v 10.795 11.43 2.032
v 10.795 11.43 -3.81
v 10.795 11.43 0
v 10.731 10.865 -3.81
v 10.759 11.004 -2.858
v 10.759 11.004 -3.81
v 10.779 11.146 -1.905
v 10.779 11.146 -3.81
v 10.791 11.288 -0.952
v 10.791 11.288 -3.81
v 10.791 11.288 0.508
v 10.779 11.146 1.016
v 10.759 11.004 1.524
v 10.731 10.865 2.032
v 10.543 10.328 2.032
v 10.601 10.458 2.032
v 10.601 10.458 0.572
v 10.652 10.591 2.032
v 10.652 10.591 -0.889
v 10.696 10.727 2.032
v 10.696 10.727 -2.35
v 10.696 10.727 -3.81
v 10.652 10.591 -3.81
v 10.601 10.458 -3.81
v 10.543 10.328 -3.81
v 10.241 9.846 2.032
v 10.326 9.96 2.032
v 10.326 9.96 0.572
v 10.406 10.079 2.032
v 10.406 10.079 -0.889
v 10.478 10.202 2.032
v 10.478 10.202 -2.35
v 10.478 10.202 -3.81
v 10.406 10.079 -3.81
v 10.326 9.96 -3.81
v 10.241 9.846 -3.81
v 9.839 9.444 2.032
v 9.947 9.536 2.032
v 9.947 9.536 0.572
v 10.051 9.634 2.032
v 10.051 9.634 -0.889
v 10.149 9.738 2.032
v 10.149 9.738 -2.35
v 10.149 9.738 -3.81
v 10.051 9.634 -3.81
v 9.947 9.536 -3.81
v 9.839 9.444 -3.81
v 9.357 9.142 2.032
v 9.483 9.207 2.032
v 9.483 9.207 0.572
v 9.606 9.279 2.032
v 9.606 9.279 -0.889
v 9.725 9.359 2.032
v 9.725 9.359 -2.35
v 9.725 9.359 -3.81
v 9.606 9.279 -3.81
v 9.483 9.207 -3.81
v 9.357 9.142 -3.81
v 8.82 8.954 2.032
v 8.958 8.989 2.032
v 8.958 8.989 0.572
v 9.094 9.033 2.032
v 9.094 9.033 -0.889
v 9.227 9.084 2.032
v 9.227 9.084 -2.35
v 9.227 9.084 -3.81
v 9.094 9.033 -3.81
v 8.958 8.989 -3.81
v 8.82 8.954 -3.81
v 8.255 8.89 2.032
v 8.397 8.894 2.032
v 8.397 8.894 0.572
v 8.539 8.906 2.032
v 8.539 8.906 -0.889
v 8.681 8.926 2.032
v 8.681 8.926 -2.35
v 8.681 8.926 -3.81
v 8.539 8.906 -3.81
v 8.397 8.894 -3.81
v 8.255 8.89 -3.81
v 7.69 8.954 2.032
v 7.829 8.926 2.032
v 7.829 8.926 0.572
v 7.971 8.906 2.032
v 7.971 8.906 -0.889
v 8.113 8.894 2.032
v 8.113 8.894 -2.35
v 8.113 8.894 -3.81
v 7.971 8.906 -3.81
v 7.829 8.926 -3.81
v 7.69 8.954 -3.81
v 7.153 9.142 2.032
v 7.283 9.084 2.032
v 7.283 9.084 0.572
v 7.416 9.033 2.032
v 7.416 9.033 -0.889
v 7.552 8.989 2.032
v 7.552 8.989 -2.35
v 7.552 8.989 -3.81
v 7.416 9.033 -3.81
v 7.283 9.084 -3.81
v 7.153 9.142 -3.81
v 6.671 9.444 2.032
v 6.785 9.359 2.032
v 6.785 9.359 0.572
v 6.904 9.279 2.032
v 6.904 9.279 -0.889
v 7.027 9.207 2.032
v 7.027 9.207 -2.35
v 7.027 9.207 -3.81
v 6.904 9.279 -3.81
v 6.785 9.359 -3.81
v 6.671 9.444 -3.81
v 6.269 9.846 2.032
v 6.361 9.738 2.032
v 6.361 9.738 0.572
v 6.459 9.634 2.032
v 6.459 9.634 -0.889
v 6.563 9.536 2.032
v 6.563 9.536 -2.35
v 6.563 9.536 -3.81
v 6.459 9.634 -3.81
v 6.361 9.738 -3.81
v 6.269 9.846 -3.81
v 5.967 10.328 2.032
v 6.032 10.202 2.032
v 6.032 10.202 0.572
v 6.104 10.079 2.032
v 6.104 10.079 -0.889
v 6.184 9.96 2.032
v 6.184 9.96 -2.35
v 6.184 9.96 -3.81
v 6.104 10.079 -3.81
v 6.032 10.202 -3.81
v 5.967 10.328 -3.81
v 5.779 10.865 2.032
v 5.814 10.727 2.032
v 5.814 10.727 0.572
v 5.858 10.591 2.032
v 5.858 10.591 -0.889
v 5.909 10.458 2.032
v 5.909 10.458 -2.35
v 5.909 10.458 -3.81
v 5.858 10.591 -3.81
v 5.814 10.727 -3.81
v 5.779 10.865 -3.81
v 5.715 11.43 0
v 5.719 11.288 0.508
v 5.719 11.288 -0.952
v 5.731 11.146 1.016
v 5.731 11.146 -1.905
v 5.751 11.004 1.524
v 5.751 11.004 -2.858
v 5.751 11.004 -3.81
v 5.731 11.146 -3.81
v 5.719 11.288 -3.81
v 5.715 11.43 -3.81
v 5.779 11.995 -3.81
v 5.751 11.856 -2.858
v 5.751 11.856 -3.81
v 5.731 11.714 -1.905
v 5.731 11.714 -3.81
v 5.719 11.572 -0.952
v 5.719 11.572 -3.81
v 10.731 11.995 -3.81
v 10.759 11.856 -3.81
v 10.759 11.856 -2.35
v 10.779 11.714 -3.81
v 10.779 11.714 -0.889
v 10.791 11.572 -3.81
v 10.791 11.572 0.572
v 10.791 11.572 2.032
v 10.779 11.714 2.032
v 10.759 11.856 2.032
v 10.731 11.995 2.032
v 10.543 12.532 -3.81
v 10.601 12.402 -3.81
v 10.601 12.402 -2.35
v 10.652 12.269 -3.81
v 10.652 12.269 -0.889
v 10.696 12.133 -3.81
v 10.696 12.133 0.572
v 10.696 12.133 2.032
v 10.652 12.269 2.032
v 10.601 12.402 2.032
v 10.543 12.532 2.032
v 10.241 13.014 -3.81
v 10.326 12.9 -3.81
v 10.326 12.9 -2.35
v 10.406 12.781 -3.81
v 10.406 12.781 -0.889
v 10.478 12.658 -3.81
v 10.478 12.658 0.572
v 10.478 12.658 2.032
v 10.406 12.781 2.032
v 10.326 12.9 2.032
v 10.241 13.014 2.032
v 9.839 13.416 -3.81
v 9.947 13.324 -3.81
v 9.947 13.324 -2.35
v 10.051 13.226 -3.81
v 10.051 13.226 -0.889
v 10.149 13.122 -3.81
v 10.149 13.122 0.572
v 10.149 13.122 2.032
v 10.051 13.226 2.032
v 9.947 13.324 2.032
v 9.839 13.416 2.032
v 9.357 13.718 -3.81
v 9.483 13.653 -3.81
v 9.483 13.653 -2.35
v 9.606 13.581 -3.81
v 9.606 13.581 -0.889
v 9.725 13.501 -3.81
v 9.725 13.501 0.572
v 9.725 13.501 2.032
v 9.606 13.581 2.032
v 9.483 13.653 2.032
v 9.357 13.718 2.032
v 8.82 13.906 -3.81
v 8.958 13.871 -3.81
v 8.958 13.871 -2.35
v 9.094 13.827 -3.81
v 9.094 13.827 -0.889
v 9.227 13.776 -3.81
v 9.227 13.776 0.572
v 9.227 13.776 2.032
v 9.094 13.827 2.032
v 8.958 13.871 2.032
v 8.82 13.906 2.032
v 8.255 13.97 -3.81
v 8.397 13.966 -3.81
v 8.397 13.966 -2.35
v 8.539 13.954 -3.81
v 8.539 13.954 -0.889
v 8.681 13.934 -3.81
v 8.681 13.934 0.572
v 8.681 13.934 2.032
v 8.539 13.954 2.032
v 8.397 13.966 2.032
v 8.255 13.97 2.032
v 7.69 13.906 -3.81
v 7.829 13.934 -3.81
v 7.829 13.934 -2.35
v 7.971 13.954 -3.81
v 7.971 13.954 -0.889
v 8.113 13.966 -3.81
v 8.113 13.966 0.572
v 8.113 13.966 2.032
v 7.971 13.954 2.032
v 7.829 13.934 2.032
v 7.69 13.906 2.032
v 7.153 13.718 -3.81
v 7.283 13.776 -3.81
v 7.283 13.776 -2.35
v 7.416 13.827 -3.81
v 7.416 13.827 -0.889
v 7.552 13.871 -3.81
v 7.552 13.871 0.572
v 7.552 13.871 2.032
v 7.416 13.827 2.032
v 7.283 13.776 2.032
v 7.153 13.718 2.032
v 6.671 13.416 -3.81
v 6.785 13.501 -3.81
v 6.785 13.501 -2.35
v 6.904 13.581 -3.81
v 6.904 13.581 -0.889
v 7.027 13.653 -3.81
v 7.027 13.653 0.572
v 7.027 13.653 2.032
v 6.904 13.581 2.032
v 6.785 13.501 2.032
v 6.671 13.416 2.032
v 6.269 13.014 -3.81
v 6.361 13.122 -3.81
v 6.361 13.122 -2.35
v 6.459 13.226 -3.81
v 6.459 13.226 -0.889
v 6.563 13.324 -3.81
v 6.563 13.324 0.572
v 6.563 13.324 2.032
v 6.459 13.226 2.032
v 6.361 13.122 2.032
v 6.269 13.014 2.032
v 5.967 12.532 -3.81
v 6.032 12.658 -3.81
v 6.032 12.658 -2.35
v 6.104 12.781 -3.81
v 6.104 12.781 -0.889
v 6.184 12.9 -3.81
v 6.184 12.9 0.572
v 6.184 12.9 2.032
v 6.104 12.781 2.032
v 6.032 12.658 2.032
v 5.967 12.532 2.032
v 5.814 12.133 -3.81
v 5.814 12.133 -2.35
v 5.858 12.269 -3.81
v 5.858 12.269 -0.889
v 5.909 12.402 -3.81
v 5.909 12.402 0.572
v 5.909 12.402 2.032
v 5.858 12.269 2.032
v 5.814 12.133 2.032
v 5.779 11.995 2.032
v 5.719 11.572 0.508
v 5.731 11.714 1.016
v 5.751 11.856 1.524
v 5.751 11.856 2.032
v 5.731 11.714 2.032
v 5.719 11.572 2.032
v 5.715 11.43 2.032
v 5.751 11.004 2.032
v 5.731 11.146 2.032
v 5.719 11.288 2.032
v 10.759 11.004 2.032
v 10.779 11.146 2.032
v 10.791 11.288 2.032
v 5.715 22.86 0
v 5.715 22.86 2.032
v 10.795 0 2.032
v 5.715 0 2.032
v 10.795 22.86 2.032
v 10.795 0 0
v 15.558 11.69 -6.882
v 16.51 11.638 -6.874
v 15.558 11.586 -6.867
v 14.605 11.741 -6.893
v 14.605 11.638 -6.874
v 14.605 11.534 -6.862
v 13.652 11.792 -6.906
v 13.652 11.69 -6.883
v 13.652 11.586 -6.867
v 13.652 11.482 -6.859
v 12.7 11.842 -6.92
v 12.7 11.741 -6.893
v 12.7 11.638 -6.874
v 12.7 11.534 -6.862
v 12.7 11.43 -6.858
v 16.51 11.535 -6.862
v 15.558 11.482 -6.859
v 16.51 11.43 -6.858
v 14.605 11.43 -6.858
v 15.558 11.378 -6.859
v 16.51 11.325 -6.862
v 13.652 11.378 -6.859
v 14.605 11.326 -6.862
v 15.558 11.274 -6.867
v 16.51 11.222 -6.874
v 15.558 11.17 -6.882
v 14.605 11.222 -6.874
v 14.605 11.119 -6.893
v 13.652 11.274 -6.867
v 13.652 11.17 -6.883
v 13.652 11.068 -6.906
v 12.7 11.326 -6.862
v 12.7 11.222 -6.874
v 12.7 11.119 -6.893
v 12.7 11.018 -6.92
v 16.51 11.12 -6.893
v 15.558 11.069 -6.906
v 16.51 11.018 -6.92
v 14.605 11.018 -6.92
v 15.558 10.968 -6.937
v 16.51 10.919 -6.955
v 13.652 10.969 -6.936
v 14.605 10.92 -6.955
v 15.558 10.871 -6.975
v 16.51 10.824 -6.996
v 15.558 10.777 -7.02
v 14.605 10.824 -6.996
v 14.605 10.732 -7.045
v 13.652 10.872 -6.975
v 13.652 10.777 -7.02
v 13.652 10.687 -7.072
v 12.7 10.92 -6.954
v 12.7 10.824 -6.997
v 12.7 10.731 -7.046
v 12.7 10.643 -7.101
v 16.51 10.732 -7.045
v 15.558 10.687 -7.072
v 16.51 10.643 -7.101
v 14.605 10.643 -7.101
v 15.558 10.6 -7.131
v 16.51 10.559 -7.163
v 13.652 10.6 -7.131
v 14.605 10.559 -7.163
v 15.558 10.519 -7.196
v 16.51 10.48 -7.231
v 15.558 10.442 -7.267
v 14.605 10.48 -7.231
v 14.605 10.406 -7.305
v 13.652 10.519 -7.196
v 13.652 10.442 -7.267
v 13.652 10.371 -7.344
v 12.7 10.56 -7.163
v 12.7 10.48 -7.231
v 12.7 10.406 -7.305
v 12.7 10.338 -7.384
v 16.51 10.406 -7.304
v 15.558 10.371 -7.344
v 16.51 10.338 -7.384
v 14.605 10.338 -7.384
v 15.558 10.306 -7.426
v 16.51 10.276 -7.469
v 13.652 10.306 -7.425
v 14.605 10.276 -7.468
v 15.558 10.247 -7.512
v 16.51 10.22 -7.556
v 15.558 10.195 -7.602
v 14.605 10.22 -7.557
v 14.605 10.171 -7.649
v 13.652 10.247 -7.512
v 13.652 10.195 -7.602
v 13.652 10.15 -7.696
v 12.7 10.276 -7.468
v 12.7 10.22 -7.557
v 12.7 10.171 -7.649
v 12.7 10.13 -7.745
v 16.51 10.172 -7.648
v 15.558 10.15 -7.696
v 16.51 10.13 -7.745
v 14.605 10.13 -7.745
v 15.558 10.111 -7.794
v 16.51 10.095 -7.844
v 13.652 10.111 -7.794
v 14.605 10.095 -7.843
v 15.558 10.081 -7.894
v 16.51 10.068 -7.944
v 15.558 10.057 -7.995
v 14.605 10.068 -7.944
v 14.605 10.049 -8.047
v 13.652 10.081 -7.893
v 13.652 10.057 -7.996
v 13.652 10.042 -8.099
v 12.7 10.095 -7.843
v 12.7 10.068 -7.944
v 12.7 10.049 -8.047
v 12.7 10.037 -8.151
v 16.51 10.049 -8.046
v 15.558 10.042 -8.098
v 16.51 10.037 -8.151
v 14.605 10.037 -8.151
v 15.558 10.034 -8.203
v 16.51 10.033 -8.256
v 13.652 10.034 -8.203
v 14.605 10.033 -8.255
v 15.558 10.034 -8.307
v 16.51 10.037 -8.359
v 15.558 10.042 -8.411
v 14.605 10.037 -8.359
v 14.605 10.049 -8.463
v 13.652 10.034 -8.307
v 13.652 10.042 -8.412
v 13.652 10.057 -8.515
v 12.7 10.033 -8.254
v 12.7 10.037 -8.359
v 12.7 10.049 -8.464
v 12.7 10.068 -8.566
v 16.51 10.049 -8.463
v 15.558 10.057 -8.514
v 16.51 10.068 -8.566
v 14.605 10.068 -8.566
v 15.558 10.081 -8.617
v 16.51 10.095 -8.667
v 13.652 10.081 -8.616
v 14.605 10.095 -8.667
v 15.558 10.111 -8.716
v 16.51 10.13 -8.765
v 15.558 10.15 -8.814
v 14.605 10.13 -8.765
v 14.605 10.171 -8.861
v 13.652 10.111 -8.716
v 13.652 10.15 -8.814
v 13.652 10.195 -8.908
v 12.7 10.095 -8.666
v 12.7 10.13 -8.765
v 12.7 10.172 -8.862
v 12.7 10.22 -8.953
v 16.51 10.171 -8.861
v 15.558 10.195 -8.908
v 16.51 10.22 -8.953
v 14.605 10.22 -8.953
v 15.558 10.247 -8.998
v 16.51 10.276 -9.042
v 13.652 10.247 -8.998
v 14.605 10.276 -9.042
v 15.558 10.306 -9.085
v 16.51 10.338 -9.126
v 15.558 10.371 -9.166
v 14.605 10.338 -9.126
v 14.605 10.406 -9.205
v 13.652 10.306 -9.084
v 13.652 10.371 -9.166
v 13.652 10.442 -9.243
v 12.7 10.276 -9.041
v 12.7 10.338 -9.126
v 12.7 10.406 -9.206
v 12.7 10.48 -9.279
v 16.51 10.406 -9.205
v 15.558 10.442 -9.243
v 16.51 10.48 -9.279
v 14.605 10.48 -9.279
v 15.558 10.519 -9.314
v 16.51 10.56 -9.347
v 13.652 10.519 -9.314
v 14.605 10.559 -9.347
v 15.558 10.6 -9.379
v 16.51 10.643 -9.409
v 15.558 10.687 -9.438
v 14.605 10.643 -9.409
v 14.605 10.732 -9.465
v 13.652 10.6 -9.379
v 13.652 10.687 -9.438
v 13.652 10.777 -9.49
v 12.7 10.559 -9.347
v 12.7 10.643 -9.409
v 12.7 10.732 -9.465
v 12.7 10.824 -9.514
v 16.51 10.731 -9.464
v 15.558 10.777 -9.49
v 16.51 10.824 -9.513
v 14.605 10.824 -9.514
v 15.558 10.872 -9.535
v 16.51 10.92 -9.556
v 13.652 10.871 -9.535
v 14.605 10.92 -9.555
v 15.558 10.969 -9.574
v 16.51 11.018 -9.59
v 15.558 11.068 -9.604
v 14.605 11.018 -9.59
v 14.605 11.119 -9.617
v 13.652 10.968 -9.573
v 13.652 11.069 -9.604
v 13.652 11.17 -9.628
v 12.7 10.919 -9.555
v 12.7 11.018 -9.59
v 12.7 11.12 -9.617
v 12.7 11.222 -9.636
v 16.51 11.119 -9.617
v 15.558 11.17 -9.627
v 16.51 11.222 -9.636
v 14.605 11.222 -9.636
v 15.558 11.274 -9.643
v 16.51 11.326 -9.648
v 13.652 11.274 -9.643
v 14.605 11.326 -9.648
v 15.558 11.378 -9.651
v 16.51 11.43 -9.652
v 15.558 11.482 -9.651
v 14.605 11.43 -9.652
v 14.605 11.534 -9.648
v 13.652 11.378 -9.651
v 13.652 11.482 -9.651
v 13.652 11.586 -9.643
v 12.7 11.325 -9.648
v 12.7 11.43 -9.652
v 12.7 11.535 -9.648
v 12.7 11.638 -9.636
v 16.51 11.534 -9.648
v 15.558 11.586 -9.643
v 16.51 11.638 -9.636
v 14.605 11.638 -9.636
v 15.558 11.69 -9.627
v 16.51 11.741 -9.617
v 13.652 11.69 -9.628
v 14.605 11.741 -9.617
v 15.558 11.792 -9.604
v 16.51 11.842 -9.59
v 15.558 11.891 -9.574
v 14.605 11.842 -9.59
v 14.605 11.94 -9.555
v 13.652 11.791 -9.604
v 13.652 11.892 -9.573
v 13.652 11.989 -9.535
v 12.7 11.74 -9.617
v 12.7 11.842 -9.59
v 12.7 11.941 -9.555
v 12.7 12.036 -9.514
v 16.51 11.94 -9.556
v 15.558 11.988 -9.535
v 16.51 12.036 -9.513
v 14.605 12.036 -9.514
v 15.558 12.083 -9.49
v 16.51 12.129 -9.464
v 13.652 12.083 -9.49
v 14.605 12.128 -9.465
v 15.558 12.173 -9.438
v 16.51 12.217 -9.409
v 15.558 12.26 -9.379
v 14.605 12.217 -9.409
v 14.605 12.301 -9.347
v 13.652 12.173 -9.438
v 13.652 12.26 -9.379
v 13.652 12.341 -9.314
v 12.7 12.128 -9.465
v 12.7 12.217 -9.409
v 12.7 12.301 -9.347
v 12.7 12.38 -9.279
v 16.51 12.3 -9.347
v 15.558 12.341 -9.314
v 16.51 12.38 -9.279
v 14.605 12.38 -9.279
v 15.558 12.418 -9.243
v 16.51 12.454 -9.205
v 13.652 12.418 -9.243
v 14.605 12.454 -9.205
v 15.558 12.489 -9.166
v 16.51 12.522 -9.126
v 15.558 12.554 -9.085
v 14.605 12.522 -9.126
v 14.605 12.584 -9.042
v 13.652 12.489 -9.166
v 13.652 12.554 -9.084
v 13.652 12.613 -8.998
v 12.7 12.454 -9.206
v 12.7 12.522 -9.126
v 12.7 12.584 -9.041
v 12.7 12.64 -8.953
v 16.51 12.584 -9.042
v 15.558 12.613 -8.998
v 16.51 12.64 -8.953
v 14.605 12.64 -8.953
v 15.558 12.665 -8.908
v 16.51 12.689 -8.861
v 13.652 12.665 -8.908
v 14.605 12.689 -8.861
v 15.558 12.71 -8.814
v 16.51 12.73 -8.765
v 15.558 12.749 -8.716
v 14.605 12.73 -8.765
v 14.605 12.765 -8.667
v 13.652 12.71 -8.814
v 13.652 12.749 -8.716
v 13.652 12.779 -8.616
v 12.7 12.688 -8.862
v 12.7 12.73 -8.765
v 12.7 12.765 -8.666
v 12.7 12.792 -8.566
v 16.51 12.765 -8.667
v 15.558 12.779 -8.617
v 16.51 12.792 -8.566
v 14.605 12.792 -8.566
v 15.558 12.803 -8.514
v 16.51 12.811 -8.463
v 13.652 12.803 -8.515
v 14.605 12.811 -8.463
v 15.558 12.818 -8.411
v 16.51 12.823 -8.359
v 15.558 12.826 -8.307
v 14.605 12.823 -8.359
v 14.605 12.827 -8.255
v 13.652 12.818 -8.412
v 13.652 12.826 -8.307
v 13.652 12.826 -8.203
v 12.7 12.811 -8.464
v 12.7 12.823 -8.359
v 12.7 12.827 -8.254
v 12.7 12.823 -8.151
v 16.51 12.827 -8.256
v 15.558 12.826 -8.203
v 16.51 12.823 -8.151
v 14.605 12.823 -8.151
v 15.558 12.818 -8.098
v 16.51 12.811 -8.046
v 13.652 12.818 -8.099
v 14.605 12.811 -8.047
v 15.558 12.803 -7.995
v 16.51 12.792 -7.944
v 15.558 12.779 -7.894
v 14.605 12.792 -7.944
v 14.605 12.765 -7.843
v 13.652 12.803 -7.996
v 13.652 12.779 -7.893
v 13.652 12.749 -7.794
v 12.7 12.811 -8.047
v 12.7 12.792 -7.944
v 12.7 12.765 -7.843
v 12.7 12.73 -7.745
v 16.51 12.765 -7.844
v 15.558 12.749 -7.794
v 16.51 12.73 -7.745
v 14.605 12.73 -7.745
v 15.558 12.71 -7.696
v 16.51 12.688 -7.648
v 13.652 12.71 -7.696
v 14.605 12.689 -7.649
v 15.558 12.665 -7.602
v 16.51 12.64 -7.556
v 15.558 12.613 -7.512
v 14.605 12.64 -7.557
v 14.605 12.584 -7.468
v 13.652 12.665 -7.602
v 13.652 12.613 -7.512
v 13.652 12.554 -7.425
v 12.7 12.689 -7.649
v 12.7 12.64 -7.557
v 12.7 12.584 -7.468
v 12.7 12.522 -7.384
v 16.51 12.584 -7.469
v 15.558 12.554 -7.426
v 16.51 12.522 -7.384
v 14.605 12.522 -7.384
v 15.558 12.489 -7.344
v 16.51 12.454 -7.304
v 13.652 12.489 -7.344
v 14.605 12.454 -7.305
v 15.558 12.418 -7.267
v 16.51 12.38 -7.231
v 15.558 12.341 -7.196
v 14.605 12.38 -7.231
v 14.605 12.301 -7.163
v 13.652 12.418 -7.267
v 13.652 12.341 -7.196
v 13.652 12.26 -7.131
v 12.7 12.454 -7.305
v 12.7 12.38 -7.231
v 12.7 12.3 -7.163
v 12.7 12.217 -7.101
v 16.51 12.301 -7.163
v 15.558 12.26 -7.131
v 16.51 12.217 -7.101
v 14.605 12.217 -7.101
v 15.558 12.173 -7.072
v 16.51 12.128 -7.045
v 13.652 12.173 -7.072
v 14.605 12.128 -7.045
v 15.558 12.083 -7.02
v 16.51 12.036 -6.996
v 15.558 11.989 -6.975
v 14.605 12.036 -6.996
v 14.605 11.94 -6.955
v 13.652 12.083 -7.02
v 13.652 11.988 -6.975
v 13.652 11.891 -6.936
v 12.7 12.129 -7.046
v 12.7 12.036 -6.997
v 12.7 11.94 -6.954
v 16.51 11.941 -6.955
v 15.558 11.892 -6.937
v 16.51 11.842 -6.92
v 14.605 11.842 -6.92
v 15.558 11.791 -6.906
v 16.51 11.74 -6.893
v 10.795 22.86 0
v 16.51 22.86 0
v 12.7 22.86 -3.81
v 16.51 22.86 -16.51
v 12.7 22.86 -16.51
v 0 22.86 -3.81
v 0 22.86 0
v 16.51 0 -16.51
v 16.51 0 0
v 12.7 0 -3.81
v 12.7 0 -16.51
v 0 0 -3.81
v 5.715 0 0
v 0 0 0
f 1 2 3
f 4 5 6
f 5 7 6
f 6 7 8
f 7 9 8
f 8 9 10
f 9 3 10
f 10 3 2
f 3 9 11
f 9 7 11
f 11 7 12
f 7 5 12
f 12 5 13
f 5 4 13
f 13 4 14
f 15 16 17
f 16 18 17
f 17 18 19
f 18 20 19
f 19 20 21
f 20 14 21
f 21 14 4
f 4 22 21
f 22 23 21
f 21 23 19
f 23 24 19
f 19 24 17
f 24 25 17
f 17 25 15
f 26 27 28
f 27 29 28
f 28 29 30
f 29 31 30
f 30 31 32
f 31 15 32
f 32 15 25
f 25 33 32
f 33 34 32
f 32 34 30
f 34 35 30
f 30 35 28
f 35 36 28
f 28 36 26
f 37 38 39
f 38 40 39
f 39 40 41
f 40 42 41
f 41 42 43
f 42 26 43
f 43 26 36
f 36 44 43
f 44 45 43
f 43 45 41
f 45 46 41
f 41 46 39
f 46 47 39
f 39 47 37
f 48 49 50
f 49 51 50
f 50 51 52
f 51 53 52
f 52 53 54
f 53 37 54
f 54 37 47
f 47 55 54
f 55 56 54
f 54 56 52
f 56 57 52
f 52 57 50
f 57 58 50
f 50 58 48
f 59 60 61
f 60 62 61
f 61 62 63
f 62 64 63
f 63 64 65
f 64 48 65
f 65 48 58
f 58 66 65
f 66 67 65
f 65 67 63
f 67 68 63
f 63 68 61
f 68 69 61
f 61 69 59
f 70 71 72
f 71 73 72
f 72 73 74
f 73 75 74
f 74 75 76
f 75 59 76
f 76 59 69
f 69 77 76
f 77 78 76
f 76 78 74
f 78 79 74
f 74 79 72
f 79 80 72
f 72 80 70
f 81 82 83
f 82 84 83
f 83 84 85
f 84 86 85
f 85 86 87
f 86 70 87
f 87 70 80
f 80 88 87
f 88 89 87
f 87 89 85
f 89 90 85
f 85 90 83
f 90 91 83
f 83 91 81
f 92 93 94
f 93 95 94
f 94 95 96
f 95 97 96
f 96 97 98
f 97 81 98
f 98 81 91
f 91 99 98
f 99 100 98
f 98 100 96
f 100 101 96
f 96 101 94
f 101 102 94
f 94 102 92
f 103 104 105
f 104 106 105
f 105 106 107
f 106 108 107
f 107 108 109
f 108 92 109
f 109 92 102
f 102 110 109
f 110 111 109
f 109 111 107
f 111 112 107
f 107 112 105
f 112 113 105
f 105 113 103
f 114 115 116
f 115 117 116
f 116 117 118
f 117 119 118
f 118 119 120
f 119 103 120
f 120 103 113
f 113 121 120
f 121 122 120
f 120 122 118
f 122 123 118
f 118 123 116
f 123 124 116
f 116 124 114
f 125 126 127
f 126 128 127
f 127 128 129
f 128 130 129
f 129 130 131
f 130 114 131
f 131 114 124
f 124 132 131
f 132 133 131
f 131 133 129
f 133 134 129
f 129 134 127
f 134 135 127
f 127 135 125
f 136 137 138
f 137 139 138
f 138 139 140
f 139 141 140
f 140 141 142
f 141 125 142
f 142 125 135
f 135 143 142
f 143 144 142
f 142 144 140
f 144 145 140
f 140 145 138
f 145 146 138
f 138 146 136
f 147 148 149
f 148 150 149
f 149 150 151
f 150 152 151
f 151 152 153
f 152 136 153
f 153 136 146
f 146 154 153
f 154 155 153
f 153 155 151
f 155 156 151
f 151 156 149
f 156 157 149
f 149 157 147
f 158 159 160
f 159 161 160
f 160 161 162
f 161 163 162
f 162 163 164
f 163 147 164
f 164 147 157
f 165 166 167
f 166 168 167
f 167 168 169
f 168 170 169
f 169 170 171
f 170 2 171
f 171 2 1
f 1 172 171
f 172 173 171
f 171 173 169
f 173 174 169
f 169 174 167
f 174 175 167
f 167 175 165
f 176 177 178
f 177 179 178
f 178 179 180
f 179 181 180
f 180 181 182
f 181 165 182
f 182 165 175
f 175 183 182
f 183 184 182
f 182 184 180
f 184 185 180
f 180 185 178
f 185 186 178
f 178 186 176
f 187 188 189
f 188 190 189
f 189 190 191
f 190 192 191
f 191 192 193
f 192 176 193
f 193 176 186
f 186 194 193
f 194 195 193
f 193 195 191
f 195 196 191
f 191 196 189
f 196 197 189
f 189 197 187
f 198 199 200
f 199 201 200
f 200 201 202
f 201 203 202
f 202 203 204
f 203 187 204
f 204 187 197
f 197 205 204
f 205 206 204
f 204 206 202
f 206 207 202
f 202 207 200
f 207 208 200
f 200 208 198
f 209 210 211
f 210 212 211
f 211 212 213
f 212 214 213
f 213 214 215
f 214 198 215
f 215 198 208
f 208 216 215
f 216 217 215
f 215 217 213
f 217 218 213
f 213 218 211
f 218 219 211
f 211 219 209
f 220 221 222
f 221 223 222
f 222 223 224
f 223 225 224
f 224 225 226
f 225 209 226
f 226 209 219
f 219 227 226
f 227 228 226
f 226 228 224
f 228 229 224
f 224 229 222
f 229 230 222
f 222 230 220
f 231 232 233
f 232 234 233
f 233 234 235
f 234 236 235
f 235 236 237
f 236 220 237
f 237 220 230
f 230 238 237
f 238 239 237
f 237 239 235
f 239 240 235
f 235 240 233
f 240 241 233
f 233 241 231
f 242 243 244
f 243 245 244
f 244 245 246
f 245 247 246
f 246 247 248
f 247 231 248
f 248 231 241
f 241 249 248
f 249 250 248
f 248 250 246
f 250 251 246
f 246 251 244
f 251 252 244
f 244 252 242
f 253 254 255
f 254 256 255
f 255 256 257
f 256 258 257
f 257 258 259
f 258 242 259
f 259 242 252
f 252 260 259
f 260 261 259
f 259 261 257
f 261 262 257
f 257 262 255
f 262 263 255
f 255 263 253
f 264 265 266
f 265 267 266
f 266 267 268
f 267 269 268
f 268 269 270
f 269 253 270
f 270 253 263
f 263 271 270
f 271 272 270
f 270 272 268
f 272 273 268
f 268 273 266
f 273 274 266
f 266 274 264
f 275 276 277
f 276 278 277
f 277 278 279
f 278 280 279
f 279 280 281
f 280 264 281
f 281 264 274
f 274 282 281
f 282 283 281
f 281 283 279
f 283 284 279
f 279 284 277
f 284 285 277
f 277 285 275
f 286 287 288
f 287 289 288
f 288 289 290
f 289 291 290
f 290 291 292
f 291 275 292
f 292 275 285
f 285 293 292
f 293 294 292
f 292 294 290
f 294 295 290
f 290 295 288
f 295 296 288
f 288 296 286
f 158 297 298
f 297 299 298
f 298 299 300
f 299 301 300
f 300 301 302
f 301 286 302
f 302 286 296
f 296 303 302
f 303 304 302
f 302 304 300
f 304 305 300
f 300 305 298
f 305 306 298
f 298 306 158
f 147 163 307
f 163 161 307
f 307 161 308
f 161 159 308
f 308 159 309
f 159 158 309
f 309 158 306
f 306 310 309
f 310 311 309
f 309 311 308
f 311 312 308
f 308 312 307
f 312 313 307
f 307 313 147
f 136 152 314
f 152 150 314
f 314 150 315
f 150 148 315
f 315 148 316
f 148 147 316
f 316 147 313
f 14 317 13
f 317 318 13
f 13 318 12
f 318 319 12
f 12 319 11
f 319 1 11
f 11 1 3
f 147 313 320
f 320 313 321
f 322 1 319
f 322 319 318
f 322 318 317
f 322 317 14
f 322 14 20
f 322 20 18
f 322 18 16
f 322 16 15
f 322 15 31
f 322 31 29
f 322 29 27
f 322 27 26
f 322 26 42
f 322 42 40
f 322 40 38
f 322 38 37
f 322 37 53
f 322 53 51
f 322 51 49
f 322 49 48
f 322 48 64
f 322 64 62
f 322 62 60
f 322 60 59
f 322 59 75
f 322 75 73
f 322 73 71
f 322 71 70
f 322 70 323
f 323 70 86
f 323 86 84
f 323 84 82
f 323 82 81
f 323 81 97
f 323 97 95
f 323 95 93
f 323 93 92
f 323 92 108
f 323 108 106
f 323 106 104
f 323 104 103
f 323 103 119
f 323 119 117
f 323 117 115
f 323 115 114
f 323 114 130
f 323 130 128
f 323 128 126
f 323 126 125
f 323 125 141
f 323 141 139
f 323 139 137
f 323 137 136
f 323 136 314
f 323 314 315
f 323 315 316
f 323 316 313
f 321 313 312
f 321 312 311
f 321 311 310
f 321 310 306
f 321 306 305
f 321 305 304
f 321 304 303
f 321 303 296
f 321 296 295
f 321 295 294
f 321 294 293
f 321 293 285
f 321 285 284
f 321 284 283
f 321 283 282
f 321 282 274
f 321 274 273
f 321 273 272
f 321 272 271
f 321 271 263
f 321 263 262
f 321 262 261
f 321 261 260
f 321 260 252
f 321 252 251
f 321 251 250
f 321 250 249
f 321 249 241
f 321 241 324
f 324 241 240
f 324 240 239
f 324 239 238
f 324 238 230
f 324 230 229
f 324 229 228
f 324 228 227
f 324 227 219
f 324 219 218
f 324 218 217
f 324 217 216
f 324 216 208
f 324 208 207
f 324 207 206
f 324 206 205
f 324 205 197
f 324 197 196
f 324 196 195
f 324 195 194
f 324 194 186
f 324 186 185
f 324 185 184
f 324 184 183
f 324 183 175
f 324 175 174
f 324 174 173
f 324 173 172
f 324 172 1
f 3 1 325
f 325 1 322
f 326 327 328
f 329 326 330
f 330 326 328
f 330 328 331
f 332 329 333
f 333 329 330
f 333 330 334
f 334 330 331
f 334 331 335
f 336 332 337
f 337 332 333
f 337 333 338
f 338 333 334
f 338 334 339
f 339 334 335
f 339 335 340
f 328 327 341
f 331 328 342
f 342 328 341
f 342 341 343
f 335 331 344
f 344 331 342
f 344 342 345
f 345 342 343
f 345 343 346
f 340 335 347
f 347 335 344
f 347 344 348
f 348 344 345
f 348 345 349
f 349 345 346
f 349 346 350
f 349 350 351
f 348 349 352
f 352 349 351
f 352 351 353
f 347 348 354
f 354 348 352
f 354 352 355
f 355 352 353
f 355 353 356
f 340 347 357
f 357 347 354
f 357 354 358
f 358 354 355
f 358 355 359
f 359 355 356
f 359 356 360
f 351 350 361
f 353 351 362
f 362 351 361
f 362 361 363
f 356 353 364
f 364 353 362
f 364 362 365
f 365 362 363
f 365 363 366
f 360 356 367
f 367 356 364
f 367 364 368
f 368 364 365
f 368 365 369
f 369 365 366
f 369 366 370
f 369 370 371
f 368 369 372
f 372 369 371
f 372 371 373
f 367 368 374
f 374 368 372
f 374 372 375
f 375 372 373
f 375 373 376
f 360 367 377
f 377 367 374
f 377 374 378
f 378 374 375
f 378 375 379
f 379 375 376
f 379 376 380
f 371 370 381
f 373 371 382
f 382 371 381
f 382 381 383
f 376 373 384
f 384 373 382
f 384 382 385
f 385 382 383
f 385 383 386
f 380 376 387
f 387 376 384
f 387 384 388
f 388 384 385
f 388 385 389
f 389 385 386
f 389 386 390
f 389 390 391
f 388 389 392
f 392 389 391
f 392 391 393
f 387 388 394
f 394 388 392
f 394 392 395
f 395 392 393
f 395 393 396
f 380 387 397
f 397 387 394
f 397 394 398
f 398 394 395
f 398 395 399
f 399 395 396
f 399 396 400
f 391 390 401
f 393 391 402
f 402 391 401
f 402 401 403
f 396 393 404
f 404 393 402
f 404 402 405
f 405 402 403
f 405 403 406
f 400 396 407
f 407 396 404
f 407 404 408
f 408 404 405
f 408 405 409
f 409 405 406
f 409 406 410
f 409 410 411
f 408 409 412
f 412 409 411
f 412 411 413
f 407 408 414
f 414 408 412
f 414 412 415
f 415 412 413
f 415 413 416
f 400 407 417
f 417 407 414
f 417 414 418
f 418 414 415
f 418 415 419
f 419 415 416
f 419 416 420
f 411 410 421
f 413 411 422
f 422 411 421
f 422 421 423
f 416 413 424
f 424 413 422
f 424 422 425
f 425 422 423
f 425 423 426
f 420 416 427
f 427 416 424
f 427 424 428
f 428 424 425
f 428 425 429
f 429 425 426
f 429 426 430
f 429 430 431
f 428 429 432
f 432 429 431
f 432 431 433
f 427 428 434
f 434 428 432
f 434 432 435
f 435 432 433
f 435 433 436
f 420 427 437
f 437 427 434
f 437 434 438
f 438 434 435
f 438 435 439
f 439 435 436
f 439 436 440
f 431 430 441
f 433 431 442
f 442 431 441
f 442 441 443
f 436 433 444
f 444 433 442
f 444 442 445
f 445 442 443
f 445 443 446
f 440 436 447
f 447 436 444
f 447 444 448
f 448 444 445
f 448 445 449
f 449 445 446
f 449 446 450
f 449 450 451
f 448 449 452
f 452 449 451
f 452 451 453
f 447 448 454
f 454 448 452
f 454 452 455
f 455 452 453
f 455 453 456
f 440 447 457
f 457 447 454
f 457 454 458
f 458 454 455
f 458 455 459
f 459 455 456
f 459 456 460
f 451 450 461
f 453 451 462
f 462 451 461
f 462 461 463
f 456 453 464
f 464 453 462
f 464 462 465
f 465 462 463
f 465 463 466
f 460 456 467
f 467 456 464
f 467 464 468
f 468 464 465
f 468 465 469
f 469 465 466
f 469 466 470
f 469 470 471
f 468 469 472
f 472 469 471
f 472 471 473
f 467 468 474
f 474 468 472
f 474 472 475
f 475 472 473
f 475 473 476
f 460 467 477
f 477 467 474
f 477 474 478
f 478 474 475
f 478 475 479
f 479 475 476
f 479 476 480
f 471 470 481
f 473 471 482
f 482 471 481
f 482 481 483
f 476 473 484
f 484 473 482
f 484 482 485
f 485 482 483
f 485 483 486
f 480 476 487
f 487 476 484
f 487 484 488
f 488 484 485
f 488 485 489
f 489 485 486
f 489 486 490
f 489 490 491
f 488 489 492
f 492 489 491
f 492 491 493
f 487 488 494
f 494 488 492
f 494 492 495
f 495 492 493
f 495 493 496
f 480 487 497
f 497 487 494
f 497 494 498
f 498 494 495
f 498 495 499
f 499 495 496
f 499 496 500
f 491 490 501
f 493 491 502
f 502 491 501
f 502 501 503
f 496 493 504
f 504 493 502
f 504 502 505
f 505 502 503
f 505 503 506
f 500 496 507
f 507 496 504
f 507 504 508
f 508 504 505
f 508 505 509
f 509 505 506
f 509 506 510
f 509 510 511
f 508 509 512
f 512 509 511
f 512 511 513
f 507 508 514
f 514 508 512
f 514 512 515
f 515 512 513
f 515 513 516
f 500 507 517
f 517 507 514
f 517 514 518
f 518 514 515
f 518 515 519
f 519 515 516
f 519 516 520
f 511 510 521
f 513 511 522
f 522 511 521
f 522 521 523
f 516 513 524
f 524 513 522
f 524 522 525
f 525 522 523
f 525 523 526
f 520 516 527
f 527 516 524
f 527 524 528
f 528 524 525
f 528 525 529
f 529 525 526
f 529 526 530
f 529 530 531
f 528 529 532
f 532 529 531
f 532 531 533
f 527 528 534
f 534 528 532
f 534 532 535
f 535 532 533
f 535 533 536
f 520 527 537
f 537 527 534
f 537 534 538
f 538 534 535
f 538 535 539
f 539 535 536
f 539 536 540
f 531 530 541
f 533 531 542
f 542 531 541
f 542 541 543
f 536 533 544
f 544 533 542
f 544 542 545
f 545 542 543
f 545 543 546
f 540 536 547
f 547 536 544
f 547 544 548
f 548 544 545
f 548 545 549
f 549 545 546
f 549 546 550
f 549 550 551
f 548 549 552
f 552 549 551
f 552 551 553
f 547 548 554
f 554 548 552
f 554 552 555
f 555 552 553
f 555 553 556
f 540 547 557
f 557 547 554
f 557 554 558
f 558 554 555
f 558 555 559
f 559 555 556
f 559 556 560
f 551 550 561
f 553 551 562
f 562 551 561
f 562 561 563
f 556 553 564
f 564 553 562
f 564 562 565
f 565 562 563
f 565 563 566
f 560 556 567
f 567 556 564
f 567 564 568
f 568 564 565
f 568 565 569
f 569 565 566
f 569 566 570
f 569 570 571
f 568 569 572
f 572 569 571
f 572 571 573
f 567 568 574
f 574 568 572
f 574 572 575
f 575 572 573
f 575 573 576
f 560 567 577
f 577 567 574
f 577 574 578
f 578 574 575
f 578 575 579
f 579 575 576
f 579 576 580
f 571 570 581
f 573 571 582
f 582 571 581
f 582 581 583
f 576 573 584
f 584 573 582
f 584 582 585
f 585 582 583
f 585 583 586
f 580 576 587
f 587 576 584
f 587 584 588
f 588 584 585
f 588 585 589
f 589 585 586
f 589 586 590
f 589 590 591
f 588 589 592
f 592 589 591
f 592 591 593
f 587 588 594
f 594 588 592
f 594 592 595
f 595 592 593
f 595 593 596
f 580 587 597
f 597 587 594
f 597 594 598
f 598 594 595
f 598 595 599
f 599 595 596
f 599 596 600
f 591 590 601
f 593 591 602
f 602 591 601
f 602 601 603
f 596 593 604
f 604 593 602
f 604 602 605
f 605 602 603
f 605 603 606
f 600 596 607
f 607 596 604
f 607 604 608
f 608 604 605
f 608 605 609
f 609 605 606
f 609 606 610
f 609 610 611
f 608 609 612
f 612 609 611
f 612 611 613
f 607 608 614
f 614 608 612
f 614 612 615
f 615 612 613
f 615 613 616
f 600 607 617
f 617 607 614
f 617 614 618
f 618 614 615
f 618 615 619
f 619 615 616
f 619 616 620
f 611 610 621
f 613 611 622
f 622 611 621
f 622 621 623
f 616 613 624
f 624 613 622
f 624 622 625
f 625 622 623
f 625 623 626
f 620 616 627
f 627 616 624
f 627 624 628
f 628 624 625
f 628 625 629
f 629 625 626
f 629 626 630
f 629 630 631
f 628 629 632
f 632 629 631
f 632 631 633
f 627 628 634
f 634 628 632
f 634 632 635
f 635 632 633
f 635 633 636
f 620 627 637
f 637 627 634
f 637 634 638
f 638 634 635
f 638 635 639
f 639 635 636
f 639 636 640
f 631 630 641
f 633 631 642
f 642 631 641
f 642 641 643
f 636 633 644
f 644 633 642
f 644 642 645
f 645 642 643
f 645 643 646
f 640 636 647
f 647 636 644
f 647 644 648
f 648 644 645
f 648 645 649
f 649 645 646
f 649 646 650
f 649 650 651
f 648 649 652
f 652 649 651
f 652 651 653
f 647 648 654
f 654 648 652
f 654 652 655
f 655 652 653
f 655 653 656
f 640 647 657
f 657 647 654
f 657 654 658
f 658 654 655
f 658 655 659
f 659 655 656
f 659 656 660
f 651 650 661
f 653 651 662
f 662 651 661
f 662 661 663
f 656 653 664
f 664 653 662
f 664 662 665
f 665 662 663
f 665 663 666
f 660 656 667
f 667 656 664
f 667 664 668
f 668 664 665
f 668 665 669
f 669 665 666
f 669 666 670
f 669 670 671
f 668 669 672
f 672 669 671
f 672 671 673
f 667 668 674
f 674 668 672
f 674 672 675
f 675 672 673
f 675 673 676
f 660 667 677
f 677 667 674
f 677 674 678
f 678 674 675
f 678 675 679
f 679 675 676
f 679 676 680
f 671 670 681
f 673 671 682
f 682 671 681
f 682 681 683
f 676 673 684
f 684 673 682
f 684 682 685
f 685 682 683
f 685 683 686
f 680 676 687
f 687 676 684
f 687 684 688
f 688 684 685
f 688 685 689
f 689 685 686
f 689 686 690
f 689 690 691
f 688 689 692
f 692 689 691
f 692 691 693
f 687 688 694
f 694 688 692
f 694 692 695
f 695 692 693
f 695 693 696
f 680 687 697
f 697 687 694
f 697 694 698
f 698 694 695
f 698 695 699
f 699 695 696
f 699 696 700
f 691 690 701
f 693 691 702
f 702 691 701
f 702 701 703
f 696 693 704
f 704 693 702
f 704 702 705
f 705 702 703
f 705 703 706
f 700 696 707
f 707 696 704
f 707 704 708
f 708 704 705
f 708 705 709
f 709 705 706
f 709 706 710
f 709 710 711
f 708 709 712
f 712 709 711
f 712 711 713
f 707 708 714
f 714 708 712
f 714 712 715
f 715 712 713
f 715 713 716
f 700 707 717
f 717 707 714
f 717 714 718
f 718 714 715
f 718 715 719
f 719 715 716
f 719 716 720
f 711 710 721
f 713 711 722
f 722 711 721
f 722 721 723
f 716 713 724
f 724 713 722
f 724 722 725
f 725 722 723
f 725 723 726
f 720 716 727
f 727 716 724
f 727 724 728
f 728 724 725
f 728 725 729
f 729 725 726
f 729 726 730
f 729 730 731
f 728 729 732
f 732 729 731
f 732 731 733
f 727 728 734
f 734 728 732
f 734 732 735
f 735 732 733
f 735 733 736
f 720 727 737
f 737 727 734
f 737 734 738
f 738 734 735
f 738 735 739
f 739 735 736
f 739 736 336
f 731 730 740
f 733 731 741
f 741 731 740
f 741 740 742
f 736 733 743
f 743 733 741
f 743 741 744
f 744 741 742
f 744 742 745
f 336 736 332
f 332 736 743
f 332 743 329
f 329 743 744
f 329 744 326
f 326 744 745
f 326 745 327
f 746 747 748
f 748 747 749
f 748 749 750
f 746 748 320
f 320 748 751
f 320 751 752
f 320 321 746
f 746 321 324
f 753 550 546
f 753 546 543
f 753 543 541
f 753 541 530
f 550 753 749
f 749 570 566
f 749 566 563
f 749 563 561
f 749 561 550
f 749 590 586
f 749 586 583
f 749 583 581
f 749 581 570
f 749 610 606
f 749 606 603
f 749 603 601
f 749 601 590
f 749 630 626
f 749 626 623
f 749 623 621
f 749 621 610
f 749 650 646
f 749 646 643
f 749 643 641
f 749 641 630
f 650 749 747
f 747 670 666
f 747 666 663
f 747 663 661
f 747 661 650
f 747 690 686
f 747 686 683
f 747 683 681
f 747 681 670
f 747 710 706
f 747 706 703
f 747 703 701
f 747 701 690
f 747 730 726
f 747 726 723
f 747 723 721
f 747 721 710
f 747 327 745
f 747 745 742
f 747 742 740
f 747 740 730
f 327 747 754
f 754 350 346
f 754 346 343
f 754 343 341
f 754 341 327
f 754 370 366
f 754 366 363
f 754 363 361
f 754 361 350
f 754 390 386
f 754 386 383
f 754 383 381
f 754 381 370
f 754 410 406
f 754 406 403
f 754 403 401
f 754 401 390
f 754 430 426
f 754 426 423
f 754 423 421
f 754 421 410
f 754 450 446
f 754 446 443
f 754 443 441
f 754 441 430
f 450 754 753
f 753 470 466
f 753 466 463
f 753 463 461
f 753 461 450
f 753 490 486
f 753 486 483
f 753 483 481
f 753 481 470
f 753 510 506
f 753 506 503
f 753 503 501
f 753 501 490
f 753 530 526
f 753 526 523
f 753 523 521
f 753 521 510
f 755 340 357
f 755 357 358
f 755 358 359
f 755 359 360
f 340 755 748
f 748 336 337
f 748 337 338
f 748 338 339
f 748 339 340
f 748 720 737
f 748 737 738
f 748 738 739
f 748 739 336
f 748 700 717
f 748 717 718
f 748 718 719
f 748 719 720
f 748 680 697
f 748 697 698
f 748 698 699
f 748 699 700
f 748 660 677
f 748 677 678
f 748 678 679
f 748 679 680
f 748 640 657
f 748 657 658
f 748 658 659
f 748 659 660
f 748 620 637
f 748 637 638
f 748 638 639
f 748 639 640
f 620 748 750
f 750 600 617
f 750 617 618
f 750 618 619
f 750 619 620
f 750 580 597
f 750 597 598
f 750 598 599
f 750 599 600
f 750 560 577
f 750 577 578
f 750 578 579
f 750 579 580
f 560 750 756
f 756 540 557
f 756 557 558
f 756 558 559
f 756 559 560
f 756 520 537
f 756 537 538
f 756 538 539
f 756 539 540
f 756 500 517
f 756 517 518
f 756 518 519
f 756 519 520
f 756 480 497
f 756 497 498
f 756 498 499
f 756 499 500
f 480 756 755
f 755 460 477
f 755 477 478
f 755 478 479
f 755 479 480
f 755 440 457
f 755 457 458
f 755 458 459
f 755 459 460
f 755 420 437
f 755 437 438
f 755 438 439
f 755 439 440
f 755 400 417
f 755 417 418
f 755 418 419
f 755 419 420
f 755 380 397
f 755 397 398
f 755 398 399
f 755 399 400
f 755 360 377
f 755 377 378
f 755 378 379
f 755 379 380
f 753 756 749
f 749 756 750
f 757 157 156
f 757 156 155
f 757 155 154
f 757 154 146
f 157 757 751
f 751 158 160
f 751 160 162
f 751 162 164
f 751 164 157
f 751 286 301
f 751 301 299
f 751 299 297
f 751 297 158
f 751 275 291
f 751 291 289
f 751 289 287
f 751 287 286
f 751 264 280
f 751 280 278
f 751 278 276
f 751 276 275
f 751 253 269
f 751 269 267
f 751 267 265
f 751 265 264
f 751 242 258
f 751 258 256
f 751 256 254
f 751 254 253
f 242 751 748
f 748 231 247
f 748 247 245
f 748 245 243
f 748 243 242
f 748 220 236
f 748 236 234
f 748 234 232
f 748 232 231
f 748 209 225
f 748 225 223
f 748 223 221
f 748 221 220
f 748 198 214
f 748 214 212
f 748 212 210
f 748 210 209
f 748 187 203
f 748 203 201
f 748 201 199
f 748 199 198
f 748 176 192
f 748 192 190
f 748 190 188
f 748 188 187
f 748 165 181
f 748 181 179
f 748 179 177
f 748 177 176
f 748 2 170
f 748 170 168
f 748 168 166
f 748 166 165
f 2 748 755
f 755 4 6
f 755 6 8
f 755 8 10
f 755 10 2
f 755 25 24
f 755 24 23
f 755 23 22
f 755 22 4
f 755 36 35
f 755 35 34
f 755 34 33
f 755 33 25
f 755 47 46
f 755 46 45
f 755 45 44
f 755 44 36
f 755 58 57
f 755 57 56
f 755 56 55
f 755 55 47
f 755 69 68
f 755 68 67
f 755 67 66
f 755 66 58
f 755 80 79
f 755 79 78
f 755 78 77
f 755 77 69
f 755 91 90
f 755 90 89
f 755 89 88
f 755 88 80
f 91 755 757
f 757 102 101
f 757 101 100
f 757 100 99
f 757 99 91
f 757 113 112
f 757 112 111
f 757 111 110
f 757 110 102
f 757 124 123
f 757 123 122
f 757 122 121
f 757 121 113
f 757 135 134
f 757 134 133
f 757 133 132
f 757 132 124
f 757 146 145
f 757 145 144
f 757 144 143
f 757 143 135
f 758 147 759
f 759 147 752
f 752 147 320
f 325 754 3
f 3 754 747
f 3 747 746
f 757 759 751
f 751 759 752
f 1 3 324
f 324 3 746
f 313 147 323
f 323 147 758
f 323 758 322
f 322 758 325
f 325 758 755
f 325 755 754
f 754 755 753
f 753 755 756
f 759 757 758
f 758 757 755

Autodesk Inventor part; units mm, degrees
ref_plane "YZ Plane" through (0, 0, 0) normal (1, 0, 0) x (0, 1, 0)
ref_plane "XZ Plane" through (0, 0, 0) normal (0, 1, 0) x (-1, 0, 0)
ref_plane "XY Plane" through (0, 0, 0) normal (0, 0, 1) x (1, 0, 0)
sketch "Sketch1" plane through (0, 0, 0) normal (0, 1, 0) x (-1, 0, 0)
  line L0 (0, 0) -> (-16.51, 0)
  line L1 (-16.51, 0) -> (-16.51, -3.81)
  line L2 (-16.51, -3.81) -> (0, -3.81)
  line L3 (0, -3.81) -> (0, 0)
  line L4 (-16.51, 0) -> (-10.795, 0)
  line L5 (-10.795, 0) -> (-5.715, 0)
  line L6 (-5.715, 0) -> (-5.715, 2.032)
  line L7 (-5.715, 2.032) -> (-10.795, 2.032)
  line L8 (-10.795, 2.032) -> (-10.795, 0)
  line L9 (-16.51, 0) -> (-16.51, -16.51)
  line L10 (-16.51, -16.51) -> (-12.7, -16.51)
  line L11 (-12.7, -16.51) -> (-12.7, 0)
  dimension "d0" = 16.51
  dimension "d1" = 3.81
  dimension "d2" = 5.715
  dimension "d3" = 5.08
  dimension "d4" = 2.032
  dimension "d5" = 16.51
  dimension "d6" = 3.81
extrude "Extrusion1" add sketch "Sketch1" along normal blind 22.86
sketch "Sketch2" plane through (16.51, 0, 0) normal (1, 0, 0) x (0, 0, -1)
  point P0 (0, 0)
sketch "Sketch4" plane through (16.51, 0, 0) normal (1, 0, 0) x (0, 0, -1)
  line L0 (0, 0) -> (0, 22.86) projected
  line L1 (0, 11.43) -> (8.255, 11.43)
  dimension "d17" = 8.255
hole "Hole2" at (16.51, 11.43, -8.255) direction (-1, 0, 0) diameter 2.794 end through all
sketch "Sketch5" plane through (12.7, 0, -3.81) normal (0, 0, -1) x (-1, 0, 0)
  line L0 (0, 22.86) -> (12.7, 22.86) projected
  line L1 (12.7, 22.86) -> (4.445, 22.86)
  line L2 (4.445, 22.86) -> (4.445, 11.43)
  point P0 (12.7, 0)
  dimension "d46" = 8.255
  dimension "d47" = 11.43
sketch "Sketch6" plane through (12.7, 0, -3.81) normal (0, 0, -1) x (-1, 0, 0)
  point P0 (12.7, 0)
hole "Hole3" at (8.255, 11.43, -3.81) direction (0, 0, 1) diameter 5.08 end through all
properties part number "Part v4"
